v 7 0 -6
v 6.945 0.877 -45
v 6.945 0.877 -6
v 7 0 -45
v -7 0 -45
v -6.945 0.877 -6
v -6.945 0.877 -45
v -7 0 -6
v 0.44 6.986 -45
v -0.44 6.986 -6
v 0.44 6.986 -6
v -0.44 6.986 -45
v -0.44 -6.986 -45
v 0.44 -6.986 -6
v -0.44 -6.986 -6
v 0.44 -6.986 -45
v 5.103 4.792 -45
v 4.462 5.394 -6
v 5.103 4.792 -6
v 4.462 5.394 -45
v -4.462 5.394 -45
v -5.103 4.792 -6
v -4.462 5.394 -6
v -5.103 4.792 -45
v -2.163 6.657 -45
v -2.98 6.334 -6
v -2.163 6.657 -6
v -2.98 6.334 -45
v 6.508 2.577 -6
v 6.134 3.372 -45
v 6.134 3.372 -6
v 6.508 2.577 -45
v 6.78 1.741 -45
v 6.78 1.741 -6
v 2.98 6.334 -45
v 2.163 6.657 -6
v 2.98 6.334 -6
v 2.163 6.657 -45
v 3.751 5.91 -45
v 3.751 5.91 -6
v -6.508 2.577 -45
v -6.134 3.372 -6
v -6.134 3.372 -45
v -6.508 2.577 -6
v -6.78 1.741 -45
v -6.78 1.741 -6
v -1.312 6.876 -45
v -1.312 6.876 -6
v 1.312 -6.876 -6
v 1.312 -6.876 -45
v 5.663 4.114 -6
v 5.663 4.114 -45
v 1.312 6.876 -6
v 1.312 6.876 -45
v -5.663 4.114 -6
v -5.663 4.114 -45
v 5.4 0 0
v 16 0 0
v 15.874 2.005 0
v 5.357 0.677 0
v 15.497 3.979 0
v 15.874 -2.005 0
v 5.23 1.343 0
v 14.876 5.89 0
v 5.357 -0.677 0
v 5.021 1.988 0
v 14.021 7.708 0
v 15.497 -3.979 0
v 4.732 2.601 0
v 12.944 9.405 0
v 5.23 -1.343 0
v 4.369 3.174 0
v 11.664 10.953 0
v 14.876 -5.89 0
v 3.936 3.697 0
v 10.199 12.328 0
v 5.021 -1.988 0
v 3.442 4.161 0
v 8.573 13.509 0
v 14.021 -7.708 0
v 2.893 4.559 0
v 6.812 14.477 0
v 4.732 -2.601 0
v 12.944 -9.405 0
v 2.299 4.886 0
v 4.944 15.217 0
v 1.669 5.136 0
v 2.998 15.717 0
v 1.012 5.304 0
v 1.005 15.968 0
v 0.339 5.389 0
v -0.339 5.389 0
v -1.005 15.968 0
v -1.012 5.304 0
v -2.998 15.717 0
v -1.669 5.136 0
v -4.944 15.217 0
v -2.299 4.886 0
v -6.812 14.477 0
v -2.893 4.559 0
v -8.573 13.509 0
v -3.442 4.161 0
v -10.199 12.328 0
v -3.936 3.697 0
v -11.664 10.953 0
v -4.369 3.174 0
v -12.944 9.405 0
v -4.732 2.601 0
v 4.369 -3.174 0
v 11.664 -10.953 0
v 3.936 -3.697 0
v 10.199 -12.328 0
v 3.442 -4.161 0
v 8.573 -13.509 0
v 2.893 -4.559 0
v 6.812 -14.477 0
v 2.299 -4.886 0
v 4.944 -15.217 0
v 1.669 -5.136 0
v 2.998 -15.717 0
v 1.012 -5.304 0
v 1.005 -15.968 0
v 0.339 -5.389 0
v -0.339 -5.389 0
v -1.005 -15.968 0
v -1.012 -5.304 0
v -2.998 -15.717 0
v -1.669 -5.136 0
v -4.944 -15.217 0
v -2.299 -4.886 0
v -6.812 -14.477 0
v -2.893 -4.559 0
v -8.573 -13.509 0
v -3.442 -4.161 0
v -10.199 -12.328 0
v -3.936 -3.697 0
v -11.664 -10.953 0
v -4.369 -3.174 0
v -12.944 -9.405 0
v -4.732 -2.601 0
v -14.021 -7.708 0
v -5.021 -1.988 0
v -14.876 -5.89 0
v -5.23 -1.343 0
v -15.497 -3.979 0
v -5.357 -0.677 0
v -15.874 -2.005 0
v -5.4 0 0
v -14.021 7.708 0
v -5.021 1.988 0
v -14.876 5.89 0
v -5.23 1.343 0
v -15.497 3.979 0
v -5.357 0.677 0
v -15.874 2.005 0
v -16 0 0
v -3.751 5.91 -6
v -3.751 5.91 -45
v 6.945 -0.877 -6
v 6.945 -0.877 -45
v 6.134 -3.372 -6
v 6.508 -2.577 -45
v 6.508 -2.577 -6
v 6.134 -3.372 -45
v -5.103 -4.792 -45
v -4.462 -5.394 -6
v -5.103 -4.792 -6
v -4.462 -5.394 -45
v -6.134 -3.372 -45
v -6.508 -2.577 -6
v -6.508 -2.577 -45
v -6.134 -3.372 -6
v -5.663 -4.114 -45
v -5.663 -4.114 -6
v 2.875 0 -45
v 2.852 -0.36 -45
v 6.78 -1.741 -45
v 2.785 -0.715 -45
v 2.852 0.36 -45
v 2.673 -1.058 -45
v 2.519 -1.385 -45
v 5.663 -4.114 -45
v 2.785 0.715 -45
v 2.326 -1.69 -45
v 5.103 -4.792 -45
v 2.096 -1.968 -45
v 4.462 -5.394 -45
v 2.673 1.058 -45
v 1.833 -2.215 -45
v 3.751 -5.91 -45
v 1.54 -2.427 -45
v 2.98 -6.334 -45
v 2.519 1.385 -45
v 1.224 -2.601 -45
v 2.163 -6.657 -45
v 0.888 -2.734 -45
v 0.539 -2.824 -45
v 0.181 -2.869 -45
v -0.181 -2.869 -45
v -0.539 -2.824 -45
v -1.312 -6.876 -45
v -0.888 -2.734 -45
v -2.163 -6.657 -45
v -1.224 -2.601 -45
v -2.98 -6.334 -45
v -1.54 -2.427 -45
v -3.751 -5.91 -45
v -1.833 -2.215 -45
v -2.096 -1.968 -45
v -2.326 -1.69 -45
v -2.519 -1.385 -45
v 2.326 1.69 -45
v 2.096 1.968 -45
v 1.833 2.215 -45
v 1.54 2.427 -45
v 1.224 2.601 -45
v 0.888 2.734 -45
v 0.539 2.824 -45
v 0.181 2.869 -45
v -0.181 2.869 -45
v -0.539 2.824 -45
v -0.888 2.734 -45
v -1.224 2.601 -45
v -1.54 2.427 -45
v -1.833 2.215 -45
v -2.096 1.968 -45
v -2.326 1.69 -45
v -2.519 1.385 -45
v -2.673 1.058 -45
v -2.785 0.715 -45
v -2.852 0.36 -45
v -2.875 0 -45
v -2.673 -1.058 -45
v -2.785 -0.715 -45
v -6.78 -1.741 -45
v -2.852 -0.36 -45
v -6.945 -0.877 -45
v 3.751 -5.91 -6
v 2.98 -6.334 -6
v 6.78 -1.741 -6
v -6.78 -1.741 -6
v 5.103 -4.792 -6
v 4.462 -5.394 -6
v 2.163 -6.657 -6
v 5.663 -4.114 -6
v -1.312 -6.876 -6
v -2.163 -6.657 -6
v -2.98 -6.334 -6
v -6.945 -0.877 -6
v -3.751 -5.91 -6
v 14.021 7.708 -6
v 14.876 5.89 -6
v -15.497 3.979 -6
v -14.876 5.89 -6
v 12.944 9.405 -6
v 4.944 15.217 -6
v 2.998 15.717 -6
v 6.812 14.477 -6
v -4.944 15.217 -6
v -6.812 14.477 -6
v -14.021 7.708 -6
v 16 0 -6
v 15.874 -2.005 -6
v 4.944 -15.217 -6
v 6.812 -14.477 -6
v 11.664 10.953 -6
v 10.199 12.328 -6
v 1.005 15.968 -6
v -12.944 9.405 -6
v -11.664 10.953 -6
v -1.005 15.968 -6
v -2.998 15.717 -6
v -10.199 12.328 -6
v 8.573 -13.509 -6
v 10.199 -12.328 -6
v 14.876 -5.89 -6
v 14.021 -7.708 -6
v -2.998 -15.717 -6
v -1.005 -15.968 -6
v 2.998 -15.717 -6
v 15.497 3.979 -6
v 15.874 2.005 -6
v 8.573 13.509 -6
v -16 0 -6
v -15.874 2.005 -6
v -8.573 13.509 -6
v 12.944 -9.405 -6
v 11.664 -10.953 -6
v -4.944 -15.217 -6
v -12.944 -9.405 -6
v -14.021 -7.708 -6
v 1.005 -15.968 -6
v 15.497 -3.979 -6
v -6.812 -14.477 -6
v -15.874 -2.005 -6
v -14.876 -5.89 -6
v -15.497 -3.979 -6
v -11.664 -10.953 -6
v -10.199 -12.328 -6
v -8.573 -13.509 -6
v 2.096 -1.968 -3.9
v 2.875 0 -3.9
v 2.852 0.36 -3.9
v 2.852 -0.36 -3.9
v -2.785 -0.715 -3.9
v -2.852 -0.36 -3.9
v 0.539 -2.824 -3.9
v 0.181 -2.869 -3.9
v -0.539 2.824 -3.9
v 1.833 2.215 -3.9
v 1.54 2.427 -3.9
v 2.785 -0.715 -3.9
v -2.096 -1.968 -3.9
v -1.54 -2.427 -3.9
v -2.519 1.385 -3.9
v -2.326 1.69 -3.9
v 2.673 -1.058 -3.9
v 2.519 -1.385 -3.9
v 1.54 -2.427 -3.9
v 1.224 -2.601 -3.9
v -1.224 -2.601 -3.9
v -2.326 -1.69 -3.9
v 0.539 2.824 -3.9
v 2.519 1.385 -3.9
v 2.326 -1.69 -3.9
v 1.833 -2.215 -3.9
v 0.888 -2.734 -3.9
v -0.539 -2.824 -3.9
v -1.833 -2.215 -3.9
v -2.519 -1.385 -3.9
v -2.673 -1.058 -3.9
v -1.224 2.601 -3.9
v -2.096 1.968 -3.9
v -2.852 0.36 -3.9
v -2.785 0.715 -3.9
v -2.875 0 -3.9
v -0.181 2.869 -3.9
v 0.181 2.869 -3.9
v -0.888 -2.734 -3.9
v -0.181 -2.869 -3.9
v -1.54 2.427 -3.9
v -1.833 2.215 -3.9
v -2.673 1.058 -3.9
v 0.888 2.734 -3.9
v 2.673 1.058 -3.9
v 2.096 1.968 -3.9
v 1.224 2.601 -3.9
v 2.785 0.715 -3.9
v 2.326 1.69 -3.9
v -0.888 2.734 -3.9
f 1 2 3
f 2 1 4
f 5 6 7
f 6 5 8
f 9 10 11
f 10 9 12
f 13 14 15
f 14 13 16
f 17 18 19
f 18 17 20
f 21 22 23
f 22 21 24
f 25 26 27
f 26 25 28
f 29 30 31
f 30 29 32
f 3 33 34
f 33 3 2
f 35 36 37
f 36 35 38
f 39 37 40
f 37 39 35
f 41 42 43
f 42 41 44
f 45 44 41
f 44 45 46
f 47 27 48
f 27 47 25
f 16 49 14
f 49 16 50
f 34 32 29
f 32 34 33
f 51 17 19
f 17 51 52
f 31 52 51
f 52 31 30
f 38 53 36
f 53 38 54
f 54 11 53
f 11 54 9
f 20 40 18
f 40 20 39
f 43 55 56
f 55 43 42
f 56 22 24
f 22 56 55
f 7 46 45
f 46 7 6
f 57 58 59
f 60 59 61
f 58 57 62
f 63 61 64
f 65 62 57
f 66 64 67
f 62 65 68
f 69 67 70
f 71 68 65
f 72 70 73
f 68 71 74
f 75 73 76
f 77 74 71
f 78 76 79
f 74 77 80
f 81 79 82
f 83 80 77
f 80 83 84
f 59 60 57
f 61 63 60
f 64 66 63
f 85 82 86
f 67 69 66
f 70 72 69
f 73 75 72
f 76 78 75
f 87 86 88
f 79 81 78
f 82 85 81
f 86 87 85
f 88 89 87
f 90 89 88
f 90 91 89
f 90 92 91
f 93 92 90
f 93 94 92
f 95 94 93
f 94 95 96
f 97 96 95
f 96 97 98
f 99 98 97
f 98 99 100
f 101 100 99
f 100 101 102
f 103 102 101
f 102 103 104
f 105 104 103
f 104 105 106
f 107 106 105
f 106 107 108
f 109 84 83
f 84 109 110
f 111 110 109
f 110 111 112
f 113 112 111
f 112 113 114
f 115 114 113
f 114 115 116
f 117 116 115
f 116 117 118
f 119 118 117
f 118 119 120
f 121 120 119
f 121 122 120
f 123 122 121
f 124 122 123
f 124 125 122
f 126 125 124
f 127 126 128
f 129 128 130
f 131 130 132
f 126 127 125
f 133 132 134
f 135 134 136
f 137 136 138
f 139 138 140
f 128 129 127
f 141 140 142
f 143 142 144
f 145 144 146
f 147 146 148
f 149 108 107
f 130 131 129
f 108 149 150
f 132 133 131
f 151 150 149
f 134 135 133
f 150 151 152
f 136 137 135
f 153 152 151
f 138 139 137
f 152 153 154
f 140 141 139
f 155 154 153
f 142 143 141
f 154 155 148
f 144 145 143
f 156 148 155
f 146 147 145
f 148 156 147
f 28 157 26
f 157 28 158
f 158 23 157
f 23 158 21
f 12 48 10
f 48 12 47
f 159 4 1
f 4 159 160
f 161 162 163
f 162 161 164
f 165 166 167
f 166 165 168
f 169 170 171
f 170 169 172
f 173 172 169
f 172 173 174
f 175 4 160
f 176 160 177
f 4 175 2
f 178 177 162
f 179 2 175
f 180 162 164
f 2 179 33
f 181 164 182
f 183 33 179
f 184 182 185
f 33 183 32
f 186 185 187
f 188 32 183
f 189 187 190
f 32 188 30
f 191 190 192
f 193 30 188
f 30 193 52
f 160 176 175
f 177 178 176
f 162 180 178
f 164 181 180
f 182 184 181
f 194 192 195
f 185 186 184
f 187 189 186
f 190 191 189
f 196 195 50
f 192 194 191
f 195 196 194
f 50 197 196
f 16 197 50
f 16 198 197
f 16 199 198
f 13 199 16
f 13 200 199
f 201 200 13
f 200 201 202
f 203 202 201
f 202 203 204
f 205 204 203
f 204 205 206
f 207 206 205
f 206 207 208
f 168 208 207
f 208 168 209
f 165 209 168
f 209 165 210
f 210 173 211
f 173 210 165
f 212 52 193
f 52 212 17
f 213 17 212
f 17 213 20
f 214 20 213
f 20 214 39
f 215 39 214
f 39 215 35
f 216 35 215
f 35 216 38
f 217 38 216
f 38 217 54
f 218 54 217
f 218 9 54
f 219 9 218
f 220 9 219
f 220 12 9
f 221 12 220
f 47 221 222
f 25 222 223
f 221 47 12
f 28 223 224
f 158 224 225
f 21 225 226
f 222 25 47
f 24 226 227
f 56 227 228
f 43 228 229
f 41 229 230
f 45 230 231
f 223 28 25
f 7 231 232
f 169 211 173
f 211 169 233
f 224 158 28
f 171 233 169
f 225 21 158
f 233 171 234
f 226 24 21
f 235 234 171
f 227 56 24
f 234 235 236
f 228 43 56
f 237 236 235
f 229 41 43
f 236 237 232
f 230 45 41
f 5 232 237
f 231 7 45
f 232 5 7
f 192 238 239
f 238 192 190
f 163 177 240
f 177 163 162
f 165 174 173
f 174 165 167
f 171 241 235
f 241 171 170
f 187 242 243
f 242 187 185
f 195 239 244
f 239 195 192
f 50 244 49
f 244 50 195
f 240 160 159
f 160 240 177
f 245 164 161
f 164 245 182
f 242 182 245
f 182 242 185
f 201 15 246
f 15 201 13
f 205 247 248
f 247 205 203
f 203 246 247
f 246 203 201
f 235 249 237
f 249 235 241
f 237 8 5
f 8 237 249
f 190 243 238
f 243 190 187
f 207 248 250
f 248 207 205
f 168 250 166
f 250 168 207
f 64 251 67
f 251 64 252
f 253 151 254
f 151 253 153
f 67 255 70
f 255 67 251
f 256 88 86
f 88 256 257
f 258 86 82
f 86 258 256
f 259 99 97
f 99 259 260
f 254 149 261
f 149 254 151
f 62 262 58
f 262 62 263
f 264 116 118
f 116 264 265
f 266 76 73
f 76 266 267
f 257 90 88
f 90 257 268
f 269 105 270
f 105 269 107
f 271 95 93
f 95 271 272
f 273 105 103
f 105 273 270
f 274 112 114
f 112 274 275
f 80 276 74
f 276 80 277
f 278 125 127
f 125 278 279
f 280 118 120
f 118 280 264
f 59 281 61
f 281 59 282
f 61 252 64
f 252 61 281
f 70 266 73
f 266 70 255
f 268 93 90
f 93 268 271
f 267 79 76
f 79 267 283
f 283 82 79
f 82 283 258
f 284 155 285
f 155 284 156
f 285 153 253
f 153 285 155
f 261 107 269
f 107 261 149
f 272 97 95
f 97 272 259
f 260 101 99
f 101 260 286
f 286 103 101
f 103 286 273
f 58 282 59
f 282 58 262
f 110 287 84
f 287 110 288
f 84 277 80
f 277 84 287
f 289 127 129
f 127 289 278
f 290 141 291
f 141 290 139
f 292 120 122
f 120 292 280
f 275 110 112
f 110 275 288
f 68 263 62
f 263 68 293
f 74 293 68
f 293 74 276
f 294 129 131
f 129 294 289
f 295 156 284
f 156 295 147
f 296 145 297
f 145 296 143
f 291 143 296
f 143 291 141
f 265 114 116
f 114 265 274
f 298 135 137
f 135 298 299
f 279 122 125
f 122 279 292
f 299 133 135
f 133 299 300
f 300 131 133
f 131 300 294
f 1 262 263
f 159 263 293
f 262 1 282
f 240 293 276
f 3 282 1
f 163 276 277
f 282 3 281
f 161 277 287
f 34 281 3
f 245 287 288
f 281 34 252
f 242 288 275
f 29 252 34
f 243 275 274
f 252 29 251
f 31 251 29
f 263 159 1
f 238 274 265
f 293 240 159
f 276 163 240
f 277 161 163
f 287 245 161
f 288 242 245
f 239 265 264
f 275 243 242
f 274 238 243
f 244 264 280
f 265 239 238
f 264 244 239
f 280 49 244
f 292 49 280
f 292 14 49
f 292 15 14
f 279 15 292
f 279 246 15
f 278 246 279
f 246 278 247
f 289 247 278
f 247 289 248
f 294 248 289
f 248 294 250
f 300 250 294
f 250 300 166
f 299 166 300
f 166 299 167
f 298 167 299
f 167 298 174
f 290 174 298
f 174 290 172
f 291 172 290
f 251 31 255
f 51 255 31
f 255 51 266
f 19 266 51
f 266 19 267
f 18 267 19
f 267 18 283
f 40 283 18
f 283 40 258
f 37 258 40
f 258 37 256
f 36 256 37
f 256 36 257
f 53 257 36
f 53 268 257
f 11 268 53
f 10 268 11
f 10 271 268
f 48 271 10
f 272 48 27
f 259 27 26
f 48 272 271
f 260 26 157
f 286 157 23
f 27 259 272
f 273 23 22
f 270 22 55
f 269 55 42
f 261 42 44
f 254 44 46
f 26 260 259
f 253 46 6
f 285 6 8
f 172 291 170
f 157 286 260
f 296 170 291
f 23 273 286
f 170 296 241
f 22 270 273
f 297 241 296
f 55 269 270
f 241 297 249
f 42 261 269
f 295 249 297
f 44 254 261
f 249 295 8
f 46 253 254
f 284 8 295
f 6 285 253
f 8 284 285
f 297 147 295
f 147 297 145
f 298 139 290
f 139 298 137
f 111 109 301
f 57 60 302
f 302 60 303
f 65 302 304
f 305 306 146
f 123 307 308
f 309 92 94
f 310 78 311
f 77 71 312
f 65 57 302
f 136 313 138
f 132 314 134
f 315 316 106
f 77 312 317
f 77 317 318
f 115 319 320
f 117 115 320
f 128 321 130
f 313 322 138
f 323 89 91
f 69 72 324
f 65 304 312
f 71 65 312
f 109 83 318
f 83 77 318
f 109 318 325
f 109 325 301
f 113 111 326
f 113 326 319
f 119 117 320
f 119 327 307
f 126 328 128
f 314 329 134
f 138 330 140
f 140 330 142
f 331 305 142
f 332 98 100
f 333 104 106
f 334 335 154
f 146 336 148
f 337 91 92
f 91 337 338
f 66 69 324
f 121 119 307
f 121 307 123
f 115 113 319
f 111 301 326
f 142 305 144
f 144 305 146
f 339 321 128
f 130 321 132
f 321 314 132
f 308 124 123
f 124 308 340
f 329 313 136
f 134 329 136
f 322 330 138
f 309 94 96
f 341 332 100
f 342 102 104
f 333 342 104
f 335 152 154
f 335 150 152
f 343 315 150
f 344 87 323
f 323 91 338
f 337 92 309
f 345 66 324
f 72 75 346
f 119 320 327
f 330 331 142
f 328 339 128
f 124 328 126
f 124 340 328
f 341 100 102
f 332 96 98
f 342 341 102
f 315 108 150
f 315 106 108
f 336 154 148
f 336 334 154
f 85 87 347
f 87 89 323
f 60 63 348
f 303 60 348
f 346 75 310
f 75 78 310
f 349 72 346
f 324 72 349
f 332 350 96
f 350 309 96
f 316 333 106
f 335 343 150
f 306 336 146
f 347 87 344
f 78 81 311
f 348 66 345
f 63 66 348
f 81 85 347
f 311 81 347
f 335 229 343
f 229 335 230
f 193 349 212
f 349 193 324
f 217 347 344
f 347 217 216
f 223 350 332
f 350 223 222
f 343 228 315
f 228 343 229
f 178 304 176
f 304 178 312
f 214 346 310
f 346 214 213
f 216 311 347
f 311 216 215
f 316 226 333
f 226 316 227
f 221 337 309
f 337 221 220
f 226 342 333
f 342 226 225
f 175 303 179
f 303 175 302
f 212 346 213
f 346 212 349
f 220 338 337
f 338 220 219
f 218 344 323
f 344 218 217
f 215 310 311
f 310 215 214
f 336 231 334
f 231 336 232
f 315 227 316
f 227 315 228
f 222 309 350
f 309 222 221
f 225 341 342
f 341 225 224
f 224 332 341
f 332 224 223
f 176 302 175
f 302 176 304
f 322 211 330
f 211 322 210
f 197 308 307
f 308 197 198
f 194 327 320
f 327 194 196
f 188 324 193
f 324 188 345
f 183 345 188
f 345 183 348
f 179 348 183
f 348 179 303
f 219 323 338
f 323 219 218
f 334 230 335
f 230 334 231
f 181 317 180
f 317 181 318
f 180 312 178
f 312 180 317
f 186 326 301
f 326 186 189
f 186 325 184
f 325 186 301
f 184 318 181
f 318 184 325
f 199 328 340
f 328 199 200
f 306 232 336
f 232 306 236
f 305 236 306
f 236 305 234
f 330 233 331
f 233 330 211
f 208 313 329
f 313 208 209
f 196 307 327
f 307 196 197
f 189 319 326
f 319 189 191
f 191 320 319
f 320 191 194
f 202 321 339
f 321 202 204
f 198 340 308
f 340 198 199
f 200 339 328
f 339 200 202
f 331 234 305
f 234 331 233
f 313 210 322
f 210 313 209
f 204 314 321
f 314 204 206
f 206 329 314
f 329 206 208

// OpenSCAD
$fn = 50;


difference() {
	union() {
		translate(v = [0, 0, -45.0000000000]) {
			cylinder(h = 45, r = 7.0000000000);
		}
		translate(v = [0, 0, -6.0000000000]) {
			cylinder(h = 6, r = 16.0000000000);
		}
	}
	union() {
		translate(v = [0, 0, 0]) {
			rotate(a = [0, 0, 0]) {
				difference() {
					union() {
						#translate(v = [0, 0, -45.0000000000]) {
							cylinder(h = 45, r = 2.6000000000);
						}
						#translate(v = [0, 0, -3.9000000000]) {
							cylinder(h = 3.9000000000, r = 7.0000000000, r1 = 2.8750000000, r2 = 5.4000000000);
						}
						#translate(v = [0, 0, -45.0000000000]) {
							cylinder(h = 45, r = 2.8750000000);
						}
						#translate(v = [0, 0, -45.0000000000]) {
							cylinder(h = 45, r = 2.6000000000);
						}
					}
					union();
				}
			}
		}
	}
}
